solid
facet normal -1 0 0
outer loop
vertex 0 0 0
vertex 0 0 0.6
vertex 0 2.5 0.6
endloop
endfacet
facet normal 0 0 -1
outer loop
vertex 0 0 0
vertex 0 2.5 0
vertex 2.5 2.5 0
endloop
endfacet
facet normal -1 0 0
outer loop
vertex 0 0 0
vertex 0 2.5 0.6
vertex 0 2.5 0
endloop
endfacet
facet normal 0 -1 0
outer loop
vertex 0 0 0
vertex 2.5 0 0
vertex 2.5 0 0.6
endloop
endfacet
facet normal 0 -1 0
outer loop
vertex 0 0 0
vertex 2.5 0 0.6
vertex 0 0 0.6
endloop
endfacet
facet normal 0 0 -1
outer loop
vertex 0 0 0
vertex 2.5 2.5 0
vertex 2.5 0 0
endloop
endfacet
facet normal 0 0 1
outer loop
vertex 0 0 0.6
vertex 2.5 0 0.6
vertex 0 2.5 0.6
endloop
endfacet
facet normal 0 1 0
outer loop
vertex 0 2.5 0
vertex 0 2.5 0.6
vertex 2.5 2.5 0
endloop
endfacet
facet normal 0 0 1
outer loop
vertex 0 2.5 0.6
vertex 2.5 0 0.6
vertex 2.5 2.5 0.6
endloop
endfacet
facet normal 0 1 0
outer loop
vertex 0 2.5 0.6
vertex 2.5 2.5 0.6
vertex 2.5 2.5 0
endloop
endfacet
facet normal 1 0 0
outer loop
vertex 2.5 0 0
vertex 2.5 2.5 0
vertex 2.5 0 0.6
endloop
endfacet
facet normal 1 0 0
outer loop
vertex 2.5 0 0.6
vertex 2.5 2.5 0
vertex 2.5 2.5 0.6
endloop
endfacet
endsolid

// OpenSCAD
/* Warning, this is a very basic generator with a lot of approximation 
input data : [UQFN, MFA, 2.5x2.5x0.6mm, 14, , A, C04-01051A]
generated by com.zoubworld.electronics.cad.model3d.Basic
Date : Sun Feb 15 10:50:49 CET 2026
*/

//body
color("black")
translate([0,0,0])
cube([2.5,2.5,0.6], center=false);
